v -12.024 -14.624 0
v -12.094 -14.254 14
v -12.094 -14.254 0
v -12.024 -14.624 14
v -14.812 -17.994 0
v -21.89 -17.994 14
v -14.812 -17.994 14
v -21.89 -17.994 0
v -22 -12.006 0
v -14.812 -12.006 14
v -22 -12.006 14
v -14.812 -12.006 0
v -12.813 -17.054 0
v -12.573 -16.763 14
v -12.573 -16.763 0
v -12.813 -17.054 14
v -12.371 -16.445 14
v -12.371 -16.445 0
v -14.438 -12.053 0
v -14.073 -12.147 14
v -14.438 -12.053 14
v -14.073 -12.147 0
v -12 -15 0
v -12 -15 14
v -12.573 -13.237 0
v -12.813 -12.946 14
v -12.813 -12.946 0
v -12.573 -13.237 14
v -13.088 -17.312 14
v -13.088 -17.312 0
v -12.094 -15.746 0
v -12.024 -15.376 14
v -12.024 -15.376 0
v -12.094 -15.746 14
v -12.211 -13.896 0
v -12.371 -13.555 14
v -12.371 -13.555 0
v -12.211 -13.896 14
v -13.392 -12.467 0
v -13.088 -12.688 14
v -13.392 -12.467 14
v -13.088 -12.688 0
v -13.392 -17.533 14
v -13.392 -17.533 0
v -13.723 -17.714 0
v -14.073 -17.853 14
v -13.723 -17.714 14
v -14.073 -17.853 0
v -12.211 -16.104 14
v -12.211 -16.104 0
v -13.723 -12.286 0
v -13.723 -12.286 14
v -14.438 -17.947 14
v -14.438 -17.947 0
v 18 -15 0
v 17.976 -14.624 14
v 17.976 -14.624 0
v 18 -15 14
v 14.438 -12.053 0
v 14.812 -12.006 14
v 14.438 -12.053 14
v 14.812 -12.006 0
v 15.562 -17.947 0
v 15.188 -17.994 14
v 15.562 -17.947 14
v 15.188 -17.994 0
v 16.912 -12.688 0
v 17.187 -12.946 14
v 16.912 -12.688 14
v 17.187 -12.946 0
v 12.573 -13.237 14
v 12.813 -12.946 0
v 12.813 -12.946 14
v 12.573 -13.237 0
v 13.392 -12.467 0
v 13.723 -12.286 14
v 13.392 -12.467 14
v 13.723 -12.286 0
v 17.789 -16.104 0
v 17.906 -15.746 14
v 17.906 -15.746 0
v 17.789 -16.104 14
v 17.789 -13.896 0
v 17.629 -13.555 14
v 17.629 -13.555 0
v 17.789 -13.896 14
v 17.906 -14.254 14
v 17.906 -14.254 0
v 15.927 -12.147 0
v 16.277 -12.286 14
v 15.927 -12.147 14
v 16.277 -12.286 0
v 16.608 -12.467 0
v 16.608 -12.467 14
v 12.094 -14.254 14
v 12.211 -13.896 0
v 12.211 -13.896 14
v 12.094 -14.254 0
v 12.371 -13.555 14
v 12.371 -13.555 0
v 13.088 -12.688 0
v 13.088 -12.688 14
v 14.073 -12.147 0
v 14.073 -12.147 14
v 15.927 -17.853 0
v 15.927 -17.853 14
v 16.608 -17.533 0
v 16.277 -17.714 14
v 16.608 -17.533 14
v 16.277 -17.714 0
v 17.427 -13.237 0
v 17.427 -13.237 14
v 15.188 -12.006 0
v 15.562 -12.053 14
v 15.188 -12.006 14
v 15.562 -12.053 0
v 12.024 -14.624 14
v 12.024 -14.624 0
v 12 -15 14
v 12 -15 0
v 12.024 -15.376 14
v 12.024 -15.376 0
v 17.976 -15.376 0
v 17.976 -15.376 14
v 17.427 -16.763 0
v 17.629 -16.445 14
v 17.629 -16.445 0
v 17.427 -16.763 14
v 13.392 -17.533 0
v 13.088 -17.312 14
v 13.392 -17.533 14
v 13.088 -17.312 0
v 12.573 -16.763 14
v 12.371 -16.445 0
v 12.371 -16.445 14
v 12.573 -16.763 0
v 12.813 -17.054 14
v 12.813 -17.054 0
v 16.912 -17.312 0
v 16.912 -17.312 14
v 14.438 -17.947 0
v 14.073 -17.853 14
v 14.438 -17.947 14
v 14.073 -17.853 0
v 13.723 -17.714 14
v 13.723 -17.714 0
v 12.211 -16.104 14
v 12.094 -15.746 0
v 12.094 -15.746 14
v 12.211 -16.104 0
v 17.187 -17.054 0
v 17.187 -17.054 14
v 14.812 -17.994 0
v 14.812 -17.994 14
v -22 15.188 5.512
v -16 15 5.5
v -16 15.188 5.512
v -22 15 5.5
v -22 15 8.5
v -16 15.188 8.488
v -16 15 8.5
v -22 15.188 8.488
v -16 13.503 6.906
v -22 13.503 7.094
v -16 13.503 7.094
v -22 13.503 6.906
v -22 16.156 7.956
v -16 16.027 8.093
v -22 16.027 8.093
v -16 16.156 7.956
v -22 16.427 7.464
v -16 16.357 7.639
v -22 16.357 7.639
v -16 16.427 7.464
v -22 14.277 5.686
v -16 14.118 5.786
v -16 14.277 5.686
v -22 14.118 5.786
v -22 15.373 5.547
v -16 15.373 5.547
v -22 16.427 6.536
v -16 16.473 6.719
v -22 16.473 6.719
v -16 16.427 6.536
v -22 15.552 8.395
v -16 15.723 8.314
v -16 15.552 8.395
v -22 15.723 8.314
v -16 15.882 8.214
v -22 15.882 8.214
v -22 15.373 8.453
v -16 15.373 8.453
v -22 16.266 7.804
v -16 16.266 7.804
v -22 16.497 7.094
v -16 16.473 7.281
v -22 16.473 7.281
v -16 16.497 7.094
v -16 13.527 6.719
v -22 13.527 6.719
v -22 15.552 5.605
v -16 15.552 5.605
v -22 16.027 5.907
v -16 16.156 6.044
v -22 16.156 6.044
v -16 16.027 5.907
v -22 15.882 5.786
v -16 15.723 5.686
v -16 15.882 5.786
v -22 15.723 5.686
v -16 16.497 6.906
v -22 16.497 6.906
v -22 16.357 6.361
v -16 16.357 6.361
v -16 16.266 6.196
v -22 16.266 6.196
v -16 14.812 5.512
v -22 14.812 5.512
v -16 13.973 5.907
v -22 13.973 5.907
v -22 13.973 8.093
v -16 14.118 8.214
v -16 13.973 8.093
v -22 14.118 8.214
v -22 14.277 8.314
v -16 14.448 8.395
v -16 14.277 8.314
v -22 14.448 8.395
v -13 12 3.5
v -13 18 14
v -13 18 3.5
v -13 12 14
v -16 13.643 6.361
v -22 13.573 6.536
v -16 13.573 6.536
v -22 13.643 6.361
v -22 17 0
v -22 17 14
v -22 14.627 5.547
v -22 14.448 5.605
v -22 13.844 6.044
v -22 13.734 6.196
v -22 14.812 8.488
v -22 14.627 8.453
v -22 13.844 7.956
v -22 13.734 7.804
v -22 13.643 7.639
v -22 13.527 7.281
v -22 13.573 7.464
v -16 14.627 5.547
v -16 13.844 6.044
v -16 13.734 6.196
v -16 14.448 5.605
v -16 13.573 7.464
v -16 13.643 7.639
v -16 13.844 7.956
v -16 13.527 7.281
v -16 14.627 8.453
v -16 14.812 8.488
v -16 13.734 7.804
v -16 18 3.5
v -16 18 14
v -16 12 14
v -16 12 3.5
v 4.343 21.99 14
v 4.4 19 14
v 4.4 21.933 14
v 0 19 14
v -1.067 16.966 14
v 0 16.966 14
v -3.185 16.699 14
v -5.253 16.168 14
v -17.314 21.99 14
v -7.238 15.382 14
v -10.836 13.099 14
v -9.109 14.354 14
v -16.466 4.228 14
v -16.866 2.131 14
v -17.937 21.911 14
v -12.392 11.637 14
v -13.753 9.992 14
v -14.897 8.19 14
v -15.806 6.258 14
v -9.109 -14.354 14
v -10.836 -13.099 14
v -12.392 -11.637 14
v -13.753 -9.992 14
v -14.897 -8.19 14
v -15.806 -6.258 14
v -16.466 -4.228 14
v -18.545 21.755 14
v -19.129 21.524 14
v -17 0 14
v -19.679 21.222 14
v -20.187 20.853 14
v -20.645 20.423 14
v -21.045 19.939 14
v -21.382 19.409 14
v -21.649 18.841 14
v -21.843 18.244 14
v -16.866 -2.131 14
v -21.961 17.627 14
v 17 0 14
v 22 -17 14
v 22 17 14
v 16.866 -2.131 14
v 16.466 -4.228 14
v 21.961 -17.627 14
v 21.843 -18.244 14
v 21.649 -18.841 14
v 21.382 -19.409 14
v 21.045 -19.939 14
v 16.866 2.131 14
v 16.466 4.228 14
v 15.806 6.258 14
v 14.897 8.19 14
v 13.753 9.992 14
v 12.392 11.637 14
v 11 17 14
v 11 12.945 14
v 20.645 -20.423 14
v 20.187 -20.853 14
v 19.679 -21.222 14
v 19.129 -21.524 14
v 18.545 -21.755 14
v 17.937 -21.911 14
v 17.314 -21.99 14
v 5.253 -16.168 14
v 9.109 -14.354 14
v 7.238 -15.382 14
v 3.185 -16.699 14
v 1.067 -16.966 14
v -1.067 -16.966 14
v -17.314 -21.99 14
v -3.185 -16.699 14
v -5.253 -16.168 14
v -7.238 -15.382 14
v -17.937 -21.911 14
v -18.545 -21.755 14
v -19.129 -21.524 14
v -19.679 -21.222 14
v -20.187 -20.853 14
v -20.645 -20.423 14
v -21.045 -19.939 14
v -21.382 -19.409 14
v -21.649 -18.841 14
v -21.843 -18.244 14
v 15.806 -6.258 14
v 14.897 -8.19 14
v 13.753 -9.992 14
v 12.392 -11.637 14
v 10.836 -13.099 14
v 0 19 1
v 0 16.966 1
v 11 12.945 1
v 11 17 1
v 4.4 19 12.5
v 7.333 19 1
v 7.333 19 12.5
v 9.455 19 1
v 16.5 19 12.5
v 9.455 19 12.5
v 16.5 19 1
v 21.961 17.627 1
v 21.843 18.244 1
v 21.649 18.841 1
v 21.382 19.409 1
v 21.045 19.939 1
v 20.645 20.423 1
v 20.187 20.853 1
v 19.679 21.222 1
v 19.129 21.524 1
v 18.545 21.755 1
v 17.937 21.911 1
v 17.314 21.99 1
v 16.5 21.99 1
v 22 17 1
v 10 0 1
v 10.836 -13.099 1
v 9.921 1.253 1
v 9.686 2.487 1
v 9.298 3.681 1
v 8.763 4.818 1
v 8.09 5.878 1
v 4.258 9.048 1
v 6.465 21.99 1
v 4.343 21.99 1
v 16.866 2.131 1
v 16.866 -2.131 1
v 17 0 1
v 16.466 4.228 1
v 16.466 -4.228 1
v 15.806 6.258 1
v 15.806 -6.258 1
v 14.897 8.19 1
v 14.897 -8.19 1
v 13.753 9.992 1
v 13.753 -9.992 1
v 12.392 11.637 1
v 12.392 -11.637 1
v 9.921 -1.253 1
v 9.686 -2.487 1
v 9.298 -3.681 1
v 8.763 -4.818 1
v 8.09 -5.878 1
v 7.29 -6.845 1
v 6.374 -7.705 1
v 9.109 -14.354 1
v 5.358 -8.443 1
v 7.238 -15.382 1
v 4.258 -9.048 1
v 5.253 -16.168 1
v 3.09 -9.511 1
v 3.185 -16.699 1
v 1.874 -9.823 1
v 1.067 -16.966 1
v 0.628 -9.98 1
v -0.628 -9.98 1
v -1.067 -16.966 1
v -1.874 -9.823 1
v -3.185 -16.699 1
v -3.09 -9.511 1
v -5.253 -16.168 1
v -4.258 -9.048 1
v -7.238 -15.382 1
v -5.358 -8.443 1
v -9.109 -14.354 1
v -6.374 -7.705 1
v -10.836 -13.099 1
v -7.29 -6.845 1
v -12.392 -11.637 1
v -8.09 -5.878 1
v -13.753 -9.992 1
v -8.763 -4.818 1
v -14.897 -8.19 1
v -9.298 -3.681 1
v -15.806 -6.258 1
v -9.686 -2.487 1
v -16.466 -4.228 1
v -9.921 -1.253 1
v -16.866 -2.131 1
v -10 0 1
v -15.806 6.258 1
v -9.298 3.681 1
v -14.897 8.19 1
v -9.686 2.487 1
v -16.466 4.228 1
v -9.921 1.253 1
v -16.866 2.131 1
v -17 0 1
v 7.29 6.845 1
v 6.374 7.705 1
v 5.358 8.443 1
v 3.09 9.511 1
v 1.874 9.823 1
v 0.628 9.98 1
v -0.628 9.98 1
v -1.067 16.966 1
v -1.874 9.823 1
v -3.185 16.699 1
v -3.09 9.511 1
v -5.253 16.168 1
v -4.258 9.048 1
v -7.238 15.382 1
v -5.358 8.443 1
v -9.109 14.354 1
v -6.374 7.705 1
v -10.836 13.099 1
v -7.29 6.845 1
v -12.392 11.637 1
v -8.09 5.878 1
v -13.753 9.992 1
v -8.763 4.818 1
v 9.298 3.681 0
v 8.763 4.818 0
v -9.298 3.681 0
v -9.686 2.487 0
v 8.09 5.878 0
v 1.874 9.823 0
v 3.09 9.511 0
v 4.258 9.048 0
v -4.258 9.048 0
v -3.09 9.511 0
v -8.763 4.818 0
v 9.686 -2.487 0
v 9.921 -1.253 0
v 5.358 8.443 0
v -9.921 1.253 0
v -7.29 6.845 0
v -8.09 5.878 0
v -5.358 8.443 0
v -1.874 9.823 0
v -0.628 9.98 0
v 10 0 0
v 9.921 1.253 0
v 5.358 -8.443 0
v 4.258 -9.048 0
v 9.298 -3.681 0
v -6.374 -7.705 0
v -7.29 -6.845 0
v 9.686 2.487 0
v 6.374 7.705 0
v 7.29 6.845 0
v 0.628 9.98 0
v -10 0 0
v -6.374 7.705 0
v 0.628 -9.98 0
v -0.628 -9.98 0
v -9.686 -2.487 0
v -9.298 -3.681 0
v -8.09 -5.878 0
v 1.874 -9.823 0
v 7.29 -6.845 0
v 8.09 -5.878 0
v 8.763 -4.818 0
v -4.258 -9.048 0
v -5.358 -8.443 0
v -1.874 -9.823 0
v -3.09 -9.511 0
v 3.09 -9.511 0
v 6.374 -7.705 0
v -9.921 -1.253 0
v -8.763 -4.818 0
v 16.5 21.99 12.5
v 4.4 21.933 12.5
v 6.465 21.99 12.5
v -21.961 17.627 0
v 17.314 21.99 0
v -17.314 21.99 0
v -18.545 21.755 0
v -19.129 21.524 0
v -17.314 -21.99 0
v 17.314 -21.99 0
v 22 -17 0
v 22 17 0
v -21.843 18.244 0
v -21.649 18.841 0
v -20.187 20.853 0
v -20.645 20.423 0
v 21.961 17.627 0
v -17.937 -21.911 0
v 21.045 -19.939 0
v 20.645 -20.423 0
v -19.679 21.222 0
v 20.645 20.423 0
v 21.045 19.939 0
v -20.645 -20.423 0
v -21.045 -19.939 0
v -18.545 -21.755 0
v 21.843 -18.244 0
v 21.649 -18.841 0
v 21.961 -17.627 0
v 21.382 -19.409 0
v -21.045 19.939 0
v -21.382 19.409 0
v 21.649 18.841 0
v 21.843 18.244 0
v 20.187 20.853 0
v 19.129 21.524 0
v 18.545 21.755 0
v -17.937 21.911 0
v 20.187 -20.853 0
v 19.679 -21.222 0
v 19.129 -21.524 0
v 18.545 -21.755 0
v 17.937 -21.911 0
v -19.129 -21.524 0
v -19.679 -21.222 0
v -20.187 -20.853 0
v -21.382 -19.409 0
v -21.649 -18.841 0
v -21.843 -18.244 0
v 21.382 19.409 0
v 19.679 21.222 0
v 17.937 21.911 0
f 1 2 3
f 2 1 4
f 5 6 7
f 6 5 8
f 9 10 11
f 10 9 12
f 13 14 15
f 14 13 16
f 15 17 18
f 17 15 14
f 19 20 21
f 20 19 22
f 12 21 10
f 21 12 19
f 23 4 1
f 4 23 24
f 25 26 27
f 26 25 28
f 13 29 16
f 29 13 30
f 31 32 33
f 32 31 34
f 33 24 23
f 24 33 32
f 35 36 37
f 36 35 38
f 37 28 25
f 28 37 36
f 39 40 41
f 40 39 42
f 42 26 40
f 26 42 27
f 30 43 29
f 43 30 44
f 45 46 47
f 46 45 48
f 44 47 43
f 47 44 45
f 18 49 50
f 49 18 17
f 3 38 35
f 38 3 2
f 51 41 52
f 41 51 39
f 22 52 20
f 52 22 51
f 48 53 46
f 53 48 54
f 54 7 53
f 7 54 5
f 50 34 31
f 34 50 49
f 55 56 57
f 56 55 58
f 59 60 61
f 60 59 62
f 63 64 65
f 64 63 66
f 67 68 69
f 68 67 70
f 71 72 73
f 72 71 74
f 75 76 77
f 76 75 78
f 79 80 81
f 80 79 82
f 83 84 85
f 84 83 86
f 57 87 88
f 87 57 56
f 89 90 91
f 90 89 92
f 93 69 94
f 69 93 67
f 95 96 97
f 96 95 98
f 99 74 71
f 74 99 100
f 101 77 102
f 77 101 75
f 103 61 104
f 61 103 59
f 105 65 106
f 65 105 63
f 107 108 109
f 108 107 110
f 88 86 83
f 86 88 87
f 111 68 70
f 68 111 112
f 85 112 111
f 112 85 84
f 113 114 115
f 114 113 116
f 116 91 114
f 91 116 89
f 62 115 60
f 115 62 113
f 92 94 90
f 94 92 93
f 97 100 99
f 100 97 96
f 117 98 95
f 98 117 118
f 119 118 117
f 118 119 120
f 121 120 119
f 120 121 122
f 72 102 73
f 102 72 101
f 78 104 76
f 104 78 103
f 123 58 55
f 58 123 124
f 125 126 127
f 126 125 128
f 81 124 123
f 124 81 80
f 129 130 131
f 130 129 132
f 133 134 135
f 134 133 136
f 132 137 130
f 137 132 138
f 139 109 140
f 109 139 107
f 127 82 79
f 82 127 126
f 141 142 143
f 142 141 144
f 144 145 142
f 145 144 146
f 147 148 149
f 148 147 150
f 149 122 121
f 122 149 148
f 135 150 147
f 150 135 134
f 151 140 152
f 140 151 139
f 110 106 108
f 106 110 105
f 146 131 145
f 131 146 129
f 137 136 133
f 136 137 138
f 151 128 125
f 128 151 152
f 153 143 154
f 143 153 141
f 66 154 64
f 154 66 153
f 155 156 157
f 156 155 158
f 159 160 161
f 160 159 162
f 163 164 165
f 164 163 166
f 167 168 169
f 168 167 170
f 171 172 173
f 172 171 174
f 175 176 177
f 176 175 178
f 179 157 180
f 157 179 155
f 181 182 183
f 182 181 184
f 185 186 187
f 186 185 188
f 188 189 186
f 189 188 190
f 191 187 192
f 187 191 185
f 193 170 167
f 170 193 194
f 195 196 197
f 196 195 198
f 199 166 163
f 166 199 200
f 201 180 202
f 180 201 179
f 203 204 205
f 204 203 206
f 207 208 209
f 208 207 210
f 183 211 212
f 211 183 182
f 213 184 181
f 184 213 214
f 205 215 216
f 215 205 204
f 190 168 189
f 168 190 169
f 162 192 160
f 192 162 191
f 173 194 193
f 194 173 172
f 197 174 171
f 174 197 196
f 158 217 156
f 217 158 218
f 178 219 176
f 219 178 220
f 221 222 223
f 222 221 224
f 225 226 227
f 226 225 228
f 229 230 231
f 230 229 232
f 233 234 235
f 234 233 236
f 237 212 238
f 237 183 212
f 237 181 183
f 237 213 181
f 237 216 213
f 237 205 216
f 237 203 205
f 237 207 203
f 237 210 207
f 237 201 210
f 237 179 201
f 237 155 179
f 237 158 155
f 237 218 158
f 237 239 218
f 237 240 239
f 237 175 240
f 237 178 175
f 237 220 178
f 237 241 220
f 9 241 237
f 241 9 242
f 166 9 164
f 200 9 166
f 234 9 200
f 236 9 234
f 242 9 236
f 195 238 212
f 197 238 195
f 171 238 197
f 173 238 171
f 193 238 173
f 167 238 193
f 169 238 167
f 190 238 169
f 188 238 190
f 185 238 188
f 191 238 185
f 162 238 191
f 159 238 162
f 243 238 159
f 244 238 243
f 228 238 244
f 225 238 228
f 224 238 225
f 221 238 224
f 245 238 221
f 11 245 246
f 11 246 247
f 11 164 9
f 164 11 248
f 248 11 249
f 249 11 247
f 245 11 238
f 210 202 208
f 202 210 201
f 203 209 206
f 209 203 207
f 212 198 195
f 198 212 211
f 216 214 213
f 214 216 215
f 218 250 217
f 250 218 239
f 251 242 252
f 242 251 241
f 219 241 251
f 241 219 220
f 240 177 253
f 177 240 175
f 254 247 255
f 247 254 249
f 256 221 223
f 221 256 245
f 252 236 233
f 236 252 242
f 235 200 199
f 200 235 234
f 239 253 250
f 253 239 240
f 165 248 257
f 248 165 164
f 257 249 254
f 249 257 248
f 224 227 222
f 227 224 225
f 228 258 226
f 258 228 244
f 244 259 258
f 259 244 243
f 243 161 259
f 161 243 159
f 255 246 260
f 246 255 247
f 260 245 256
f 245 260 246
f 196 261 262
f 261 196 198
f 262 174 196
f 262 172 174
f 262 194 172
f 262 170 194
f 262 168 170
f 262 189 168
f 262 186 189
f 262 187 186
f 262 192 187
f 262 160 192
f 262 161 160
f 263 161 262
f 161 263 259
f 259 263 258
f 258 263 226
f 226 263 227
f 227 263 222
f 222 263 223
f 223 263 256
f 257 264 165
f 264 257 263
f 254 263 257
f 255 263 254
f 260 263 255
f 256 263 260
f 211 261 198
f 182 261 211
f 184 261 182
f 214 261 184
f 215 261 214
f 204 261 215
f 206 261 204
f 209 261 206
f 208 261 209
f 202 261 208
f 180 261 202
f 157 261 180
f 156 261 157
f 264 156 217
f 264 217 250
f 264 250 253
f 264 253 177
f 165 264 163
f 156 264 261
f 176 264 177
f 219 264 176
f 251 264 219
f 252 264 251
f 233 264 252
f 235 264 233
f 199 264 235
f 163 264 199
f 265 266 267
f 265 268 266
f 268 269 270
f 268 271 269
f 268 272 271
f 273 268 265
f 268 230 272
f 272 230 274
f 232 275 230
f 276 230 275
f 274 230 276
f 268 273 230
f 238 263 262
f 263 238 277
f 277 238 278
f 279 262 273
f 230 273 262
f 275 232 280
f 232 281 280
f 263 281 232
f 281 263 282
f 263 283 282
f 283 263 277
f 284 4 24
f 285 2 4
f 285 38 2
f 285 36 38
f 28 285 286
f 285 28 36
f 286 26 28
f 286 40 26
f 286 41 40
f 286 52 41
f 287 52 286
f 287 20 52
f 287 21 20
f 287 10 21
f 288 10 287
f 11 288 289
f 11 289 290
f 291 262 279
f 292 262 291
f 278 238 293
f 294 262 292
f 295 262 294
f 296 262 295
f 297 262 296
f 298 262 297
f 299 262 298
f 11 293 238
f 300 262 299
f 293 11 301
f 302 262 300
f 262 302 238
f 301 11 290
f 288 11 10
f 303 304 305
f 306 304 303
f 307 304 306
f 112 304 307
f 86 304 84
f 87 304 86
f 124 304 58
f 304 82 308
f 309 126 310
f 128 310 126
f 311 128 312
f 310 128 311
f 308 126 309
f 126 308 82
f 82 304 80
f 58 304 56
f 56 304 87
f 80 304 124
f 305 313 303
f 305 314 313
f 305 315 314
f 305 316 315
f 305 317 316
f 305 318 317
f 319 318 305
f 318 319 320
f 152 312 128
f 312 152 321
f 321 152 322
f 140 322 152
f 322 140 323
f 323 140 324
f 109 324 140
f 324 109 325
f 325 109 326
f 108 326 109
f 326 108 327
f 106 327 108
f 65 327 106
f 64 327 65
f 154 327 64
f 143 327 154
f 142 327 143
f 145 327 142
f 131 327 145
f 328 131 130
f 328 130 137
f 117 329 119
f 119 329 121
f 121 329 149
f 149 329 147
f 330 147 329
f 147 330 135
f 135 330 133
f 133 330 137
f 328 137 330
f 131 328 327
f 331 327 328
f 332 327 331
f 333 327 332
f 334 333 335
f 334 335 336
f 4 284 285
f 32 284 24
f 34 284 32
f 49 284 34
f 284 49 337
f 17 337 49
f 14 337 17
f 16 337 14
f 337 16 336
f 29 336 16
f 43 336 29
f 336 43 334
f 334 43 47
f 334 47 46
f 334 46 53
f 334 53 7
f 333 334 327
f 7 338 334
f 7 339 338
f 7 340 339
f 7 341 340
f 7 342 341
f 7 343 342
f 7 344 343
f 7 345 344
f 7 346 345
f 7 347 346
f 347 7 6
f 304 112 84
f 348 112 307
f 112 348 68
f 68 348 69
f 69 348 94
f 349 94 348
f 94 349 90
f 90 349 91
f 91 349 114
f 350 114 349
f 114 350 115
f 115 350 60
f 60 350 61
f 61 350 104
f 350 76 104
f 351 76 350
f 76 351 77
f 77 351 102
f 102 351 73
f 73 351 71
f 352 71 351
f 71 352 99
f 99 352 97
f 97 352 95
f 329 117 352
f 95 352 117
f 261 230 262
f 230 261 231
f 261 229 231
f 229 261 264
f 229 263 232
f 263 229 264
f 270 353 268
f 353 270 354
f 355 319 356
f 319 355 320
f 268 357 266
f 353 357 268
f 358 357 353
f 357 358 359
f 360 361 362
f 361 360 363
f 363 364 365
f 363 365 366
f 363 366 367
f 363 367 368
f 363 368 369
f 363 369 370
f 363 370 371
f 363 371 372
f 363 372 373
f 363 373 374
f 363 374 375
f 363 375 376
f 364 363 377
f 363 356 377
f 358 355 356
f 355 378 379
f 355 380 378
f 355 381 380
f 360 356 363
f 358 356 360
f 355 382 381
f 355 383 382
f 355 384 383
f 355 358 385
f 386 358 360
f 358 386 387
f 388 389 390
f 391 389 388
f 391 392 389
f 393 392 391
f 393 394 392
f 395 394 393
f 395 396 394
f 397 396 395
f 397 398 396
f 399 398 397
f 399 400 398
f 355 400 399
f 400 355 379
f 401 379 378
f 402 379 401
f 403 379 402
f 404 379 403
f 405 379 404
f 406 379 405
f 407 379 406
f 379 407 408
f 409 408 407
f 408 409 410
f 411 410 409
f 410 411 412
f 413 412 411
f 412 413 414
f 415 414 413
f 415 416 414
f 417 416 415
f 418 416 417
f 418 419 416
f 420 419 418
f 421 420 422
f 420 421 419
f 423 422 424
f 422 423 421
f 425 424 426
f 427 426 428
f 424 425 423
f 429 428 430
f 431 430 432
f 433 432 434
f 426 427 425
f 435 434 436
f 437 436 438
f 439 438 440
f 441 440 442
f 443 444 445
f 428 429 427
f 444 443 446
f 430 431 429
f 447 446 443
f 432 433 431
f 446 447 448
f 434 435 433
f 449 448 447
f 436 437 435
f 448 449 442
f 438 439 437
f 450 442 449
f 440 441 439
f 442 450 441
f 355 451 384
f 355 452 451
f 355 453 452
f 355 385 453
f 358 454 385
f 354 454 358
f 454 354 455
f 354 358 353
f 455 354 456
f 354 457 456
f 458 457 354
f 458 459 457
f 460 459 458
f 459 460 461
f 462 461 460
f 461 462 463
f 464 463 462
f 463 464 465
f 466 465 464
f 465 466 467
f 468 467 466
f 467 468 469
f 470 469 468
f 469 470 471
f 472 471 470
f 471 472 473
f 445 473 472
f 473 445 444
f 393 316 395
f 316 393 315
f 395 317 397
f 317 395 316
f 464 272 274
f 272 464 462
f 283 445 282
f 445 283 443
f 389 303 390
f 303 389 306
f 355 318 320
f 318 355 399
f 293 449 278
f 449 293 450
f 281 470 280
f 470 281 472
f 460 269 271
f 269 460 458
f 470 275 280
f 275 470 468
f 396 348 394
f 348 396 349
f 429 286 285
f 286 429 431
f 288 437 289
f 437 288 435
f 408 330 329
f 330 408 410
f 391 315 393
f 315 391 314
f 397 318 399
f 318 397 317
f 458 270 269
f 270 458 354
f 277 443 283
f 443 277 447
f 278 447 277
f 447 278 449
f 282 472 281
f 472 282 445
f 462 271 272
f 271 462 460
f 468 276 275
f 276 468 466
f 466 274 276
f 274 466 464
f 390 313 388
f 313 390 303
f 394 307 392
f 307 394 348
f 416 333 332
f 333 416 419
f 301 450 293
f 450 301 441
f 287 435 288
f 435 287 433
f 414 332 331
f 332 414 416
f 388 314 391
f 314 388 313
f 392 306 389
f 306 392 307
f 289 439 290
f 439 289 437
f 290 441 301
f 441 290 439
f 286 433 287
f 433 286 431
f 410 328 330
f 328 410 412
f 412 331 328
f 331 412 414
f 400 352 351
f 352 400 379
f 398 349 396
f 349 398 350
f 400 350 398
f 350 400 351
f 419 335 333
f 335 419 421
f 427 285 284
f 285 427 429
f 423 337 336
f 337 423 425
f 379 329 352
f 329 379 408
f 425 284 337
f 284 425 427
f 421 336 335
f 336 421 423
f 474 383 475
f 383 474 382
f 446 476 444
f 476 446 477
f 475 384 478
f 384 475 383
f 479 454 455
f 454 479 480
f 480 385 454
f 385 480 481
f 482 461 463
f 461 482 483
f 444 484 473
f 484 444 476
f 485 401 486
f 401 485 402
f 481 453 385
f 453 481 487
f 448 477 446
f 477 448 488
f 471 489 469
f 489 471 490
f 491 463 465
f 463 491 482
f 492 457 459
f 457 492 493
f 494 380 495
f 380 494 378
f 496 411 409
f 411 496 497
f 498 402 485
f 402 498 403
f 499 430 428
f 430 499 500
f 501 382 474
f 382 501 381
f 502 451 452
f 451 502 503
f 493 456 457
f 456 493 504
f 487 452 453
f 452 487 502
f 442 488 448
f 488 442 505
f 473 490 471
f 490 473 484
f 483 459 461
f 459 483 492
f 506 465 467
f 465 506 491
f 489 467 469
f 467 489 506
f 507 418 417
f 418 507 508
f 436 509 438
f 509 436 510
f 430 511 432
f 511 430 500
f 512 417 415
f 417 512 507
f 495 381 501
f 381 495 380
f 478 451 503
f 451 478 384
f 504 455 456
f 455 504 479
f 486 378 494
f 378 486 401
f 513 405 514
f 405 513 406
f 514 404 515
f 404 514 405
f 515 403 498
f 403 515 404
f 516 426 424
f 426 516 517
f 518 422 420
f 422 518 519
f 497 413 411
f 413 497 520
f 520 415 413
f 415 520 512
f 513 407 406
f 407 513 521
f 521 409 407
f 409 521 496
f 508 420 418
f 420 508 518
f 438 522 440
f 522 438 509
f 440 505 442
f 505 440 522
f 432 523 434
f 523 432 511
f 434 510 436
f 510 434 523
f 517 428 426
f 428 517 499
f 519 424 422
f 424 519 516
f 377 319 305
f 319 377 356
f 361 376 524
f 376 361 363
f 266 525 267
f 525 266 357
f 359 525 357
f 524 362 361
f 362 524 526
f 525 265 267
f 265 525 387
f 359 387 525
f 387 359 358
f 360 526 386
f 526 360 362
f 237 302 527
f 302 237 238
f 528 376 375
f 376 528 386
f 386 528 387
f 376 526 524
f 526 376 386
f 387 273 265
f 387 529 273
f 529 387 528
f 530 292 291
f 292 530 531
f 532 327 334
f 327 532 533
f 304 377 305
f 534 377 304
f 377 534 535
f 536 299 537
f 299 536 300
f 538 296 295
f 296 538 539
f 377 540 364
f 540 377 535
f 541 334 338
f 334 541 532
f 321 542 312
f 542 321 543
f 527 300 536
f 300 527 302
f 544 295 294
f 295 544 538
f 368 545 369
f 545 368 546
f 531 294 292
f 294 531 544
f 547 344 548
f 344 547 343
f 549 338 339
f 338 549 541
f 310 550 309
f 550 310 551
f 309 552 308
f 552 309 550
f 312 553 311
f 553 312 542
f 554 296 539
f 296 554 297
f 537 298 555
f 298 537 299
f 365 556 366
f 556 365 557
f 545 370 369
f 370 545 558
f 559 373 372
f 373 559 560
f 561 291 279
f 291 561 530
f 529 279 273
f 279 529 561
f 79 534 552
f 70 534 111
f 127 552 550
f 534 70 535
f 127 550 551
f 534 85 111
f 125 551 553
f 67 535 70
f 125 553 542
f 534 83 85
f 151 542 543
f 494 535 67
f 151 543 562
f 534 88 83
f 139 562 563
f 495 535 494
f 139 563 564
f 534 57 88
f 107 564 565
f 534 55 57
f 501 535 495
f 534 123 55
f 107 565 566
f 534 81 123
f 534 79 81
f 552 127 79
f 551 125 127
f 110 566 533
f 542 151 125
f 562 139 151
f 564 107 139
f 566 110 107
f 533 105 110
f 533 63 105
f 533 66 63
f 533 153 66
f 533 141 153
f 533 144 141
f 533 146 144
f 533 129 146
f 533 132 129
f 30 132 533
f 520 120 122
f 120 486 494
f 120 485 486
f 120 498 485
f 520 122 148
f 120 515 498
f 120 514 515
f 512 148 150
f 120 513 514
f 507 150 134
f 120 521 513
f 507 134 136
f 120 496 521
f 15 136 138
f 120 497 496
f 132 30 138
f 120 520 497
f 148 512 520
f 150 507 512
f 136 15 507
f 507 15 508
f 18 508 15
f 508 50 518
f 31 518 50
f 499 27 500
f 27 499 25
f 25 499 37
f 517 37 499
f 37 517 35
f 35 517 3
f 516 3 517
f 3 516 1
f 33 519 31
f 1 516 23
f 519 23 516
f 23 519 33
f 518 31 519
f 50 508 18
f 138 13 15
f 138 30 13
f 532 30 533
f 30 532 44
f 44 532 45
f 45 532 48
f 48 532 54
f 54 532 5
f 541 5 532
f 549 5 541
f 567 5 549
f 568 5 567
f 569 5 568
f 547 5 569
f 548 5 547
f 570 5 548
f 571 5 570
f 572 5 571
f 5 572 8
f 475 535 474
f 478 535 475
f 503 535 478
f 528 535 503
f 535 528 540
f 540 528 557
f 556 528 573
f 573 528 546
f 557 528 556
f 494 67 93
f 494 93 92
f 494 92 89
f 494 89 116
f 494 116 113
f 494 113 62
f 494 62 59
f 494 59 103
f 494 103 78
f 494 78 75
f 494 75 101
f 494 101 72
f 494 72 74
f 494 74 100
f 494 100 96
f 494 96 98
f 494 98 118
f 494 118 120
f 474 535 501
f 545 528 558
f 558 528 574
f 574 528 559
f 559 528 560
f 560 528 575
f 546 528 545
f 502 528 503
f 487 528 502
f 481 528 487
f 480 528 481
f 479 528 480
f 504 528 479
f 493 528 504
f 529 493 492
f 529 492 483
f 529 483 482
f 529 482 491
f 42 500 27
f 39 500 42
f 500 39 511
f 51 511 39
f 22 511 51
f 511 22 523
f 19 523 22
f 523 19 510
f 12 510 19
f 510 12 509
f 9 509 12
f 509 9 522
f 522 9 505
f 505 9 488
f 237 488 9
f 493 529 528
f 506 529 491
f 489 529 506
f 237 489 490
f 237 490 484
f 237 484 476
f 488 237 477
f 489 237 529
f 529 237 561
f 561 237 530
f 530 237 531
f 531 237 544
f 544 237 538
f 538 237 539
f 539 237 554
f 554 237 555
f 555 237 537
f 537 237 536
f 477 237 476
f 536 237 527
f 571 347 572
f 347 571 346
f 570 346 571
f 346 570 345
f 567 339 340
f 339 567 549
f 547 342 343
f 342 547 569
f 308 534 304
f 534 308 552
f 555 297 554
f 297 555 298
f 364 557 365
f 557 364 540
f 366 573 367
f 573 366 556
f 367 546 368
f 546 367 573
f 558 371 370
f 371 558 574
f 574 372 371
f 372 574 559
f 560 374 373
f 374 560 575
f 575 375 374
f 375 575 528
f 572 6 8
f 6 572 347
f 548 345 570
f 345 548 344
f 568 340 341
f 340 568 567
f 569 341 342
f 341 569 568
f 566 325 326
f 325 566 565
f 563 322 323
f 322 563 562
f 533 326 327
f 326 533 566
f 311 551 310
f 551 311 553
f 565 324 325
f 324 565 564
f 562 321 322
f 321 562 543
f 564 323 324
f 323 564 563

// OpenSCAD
$fn = 50;


difference() {
	union() {
		translate(v = [0, 0, 0]) {
			rotate(a = [0, 0, 0]) {
				hull() {
					translate(v = [-17.0000000000, 17.0000000000, 0]) {
						rotate(a = [0, 0, 0]) {
							translate(v = [0, 0, 0]) {
								rotate(a = [0, 0, 0]) {
									cylinder(h = 14, r = 5);
								}
							}
						}
					}
					translate(v = [17.0000000000, 17.0000000000, 0]) {
						rotate(a = [0, 0, 0]) {
							translate(v = [0, 0, 0]) {
								rotate(a = [0, 0, 0]) {
									cylinder(h = 14, r = 5);
								}
							}
						}
					}
					translate(v = [-17.0000000000, -17.0000000000, 0]) {
						rotate(a = [0, 0, 0]) {
							translate(v = [0, 0, 0]) {
								rotate(a = [0, 0, 0]) {
									cylinder(h = 14, r = 5);
								}
							}
						}
					}
					translate(v = [17.0000000000, -17.0000000000, 0]) {
						rotate(a = [0, 0, 0]) {
							translate(v = [0, 0, 0]) {
								rotate(a = [0, 0, 0]) {
									cylinder(h = 14, r = 5);
								}
							}
						}
					}
				}
			}
		}
	}
	union() {
		translate(v = [-22.5000000000, -15.0000000000, -125]) {
			rotate(a = [0, 0, 0]) {
				hull() {
					translate(v = [7.5000000000, 0, 0]) {
						rotate(a = [0, 0, 0]) {
							translate(v = [0, 0, 0]) {
								rotate(a = [0, 0, 0]) {
									cylinder(h = 250, r = 3.0000000000);
								}
							}
						}
					}
					translate(v = [-7.5000000000, 0, 0]) {
						rotate(a = [0, 0, 0]) {
							translate(v = [0, 0, 0]) {
								rotate(a = [0, 0, 0]) {
									cylinder(h = 250, r = 3.0000000000);
								}
							}
						}
					}
				}
			}
		}
		translate(v = [15.0000000000, -15.0000000000, -125.0000000000]) {
			rotate(a = [0, 0, 0]) {
				cylinder(h = 250, r = 3.0000000000);
			}
		}
		translate(v = [-22.0000000000, 15.0000000000, 7.0000000000]) {
			rotate(a = [0, 90, 0]) {
				cylinder(h = 9, r = 1.5000000000);
			}
		}
		translate(v = [-16.0000000000, 12.0000000000, 3.5000000000]) {
			rotate(a = [0, 0, 0]) {
				cube(size = [3, 6, 10.5000000000]);
			}
		}
		translate(v = [0.0000000000, 11.0000000000, 1.0000000000]) {
			rotate(a = [0, 0, 0]) {
				cube(size = [11, 8, 16]);
			}
		}
		translate(v = [0, 0, 1.0000000000]) {
			rotate(a = [0, 0, 0]) {
				cylinder(h = 16, r = 17.0000000000);
			}
		}
		translate(v = [0, 0, -7.0000000000]) {
			rotate(a = [0, 0, 0]) {
				cylinder(h = 14, r = 10.0000000000);
			}
		}
		translate(v = [0.0000000000, 17.0000000000, 1]) {
			rotate(a = [0, 0, 0]) {
				cube(size = [22.0000000000, 2, 16]);
			}
		}
		translate(v = [16.5000000000, 17.0000000000, 1]) {
			rotate(a = [0, 0, 0]) {
				cube(size = [5.5000000000, 5, 16]);
			}
		}
		translate(v = [4.4000000000, 17.0000000000, 12.5000000000]) {
			rotate(a = [0, 0, 0]) {
				cube(size = [17.6000000000, 5, 1.5000000000]);
			}
		}
		translate(v = [3.5833333333, 22.7500000000, 1]) {
			rotate(a = [0, 0, -45]) {
				cube(size = [7.5000000000, 1.5000000000, 16]);
			}
		}
	}
}
